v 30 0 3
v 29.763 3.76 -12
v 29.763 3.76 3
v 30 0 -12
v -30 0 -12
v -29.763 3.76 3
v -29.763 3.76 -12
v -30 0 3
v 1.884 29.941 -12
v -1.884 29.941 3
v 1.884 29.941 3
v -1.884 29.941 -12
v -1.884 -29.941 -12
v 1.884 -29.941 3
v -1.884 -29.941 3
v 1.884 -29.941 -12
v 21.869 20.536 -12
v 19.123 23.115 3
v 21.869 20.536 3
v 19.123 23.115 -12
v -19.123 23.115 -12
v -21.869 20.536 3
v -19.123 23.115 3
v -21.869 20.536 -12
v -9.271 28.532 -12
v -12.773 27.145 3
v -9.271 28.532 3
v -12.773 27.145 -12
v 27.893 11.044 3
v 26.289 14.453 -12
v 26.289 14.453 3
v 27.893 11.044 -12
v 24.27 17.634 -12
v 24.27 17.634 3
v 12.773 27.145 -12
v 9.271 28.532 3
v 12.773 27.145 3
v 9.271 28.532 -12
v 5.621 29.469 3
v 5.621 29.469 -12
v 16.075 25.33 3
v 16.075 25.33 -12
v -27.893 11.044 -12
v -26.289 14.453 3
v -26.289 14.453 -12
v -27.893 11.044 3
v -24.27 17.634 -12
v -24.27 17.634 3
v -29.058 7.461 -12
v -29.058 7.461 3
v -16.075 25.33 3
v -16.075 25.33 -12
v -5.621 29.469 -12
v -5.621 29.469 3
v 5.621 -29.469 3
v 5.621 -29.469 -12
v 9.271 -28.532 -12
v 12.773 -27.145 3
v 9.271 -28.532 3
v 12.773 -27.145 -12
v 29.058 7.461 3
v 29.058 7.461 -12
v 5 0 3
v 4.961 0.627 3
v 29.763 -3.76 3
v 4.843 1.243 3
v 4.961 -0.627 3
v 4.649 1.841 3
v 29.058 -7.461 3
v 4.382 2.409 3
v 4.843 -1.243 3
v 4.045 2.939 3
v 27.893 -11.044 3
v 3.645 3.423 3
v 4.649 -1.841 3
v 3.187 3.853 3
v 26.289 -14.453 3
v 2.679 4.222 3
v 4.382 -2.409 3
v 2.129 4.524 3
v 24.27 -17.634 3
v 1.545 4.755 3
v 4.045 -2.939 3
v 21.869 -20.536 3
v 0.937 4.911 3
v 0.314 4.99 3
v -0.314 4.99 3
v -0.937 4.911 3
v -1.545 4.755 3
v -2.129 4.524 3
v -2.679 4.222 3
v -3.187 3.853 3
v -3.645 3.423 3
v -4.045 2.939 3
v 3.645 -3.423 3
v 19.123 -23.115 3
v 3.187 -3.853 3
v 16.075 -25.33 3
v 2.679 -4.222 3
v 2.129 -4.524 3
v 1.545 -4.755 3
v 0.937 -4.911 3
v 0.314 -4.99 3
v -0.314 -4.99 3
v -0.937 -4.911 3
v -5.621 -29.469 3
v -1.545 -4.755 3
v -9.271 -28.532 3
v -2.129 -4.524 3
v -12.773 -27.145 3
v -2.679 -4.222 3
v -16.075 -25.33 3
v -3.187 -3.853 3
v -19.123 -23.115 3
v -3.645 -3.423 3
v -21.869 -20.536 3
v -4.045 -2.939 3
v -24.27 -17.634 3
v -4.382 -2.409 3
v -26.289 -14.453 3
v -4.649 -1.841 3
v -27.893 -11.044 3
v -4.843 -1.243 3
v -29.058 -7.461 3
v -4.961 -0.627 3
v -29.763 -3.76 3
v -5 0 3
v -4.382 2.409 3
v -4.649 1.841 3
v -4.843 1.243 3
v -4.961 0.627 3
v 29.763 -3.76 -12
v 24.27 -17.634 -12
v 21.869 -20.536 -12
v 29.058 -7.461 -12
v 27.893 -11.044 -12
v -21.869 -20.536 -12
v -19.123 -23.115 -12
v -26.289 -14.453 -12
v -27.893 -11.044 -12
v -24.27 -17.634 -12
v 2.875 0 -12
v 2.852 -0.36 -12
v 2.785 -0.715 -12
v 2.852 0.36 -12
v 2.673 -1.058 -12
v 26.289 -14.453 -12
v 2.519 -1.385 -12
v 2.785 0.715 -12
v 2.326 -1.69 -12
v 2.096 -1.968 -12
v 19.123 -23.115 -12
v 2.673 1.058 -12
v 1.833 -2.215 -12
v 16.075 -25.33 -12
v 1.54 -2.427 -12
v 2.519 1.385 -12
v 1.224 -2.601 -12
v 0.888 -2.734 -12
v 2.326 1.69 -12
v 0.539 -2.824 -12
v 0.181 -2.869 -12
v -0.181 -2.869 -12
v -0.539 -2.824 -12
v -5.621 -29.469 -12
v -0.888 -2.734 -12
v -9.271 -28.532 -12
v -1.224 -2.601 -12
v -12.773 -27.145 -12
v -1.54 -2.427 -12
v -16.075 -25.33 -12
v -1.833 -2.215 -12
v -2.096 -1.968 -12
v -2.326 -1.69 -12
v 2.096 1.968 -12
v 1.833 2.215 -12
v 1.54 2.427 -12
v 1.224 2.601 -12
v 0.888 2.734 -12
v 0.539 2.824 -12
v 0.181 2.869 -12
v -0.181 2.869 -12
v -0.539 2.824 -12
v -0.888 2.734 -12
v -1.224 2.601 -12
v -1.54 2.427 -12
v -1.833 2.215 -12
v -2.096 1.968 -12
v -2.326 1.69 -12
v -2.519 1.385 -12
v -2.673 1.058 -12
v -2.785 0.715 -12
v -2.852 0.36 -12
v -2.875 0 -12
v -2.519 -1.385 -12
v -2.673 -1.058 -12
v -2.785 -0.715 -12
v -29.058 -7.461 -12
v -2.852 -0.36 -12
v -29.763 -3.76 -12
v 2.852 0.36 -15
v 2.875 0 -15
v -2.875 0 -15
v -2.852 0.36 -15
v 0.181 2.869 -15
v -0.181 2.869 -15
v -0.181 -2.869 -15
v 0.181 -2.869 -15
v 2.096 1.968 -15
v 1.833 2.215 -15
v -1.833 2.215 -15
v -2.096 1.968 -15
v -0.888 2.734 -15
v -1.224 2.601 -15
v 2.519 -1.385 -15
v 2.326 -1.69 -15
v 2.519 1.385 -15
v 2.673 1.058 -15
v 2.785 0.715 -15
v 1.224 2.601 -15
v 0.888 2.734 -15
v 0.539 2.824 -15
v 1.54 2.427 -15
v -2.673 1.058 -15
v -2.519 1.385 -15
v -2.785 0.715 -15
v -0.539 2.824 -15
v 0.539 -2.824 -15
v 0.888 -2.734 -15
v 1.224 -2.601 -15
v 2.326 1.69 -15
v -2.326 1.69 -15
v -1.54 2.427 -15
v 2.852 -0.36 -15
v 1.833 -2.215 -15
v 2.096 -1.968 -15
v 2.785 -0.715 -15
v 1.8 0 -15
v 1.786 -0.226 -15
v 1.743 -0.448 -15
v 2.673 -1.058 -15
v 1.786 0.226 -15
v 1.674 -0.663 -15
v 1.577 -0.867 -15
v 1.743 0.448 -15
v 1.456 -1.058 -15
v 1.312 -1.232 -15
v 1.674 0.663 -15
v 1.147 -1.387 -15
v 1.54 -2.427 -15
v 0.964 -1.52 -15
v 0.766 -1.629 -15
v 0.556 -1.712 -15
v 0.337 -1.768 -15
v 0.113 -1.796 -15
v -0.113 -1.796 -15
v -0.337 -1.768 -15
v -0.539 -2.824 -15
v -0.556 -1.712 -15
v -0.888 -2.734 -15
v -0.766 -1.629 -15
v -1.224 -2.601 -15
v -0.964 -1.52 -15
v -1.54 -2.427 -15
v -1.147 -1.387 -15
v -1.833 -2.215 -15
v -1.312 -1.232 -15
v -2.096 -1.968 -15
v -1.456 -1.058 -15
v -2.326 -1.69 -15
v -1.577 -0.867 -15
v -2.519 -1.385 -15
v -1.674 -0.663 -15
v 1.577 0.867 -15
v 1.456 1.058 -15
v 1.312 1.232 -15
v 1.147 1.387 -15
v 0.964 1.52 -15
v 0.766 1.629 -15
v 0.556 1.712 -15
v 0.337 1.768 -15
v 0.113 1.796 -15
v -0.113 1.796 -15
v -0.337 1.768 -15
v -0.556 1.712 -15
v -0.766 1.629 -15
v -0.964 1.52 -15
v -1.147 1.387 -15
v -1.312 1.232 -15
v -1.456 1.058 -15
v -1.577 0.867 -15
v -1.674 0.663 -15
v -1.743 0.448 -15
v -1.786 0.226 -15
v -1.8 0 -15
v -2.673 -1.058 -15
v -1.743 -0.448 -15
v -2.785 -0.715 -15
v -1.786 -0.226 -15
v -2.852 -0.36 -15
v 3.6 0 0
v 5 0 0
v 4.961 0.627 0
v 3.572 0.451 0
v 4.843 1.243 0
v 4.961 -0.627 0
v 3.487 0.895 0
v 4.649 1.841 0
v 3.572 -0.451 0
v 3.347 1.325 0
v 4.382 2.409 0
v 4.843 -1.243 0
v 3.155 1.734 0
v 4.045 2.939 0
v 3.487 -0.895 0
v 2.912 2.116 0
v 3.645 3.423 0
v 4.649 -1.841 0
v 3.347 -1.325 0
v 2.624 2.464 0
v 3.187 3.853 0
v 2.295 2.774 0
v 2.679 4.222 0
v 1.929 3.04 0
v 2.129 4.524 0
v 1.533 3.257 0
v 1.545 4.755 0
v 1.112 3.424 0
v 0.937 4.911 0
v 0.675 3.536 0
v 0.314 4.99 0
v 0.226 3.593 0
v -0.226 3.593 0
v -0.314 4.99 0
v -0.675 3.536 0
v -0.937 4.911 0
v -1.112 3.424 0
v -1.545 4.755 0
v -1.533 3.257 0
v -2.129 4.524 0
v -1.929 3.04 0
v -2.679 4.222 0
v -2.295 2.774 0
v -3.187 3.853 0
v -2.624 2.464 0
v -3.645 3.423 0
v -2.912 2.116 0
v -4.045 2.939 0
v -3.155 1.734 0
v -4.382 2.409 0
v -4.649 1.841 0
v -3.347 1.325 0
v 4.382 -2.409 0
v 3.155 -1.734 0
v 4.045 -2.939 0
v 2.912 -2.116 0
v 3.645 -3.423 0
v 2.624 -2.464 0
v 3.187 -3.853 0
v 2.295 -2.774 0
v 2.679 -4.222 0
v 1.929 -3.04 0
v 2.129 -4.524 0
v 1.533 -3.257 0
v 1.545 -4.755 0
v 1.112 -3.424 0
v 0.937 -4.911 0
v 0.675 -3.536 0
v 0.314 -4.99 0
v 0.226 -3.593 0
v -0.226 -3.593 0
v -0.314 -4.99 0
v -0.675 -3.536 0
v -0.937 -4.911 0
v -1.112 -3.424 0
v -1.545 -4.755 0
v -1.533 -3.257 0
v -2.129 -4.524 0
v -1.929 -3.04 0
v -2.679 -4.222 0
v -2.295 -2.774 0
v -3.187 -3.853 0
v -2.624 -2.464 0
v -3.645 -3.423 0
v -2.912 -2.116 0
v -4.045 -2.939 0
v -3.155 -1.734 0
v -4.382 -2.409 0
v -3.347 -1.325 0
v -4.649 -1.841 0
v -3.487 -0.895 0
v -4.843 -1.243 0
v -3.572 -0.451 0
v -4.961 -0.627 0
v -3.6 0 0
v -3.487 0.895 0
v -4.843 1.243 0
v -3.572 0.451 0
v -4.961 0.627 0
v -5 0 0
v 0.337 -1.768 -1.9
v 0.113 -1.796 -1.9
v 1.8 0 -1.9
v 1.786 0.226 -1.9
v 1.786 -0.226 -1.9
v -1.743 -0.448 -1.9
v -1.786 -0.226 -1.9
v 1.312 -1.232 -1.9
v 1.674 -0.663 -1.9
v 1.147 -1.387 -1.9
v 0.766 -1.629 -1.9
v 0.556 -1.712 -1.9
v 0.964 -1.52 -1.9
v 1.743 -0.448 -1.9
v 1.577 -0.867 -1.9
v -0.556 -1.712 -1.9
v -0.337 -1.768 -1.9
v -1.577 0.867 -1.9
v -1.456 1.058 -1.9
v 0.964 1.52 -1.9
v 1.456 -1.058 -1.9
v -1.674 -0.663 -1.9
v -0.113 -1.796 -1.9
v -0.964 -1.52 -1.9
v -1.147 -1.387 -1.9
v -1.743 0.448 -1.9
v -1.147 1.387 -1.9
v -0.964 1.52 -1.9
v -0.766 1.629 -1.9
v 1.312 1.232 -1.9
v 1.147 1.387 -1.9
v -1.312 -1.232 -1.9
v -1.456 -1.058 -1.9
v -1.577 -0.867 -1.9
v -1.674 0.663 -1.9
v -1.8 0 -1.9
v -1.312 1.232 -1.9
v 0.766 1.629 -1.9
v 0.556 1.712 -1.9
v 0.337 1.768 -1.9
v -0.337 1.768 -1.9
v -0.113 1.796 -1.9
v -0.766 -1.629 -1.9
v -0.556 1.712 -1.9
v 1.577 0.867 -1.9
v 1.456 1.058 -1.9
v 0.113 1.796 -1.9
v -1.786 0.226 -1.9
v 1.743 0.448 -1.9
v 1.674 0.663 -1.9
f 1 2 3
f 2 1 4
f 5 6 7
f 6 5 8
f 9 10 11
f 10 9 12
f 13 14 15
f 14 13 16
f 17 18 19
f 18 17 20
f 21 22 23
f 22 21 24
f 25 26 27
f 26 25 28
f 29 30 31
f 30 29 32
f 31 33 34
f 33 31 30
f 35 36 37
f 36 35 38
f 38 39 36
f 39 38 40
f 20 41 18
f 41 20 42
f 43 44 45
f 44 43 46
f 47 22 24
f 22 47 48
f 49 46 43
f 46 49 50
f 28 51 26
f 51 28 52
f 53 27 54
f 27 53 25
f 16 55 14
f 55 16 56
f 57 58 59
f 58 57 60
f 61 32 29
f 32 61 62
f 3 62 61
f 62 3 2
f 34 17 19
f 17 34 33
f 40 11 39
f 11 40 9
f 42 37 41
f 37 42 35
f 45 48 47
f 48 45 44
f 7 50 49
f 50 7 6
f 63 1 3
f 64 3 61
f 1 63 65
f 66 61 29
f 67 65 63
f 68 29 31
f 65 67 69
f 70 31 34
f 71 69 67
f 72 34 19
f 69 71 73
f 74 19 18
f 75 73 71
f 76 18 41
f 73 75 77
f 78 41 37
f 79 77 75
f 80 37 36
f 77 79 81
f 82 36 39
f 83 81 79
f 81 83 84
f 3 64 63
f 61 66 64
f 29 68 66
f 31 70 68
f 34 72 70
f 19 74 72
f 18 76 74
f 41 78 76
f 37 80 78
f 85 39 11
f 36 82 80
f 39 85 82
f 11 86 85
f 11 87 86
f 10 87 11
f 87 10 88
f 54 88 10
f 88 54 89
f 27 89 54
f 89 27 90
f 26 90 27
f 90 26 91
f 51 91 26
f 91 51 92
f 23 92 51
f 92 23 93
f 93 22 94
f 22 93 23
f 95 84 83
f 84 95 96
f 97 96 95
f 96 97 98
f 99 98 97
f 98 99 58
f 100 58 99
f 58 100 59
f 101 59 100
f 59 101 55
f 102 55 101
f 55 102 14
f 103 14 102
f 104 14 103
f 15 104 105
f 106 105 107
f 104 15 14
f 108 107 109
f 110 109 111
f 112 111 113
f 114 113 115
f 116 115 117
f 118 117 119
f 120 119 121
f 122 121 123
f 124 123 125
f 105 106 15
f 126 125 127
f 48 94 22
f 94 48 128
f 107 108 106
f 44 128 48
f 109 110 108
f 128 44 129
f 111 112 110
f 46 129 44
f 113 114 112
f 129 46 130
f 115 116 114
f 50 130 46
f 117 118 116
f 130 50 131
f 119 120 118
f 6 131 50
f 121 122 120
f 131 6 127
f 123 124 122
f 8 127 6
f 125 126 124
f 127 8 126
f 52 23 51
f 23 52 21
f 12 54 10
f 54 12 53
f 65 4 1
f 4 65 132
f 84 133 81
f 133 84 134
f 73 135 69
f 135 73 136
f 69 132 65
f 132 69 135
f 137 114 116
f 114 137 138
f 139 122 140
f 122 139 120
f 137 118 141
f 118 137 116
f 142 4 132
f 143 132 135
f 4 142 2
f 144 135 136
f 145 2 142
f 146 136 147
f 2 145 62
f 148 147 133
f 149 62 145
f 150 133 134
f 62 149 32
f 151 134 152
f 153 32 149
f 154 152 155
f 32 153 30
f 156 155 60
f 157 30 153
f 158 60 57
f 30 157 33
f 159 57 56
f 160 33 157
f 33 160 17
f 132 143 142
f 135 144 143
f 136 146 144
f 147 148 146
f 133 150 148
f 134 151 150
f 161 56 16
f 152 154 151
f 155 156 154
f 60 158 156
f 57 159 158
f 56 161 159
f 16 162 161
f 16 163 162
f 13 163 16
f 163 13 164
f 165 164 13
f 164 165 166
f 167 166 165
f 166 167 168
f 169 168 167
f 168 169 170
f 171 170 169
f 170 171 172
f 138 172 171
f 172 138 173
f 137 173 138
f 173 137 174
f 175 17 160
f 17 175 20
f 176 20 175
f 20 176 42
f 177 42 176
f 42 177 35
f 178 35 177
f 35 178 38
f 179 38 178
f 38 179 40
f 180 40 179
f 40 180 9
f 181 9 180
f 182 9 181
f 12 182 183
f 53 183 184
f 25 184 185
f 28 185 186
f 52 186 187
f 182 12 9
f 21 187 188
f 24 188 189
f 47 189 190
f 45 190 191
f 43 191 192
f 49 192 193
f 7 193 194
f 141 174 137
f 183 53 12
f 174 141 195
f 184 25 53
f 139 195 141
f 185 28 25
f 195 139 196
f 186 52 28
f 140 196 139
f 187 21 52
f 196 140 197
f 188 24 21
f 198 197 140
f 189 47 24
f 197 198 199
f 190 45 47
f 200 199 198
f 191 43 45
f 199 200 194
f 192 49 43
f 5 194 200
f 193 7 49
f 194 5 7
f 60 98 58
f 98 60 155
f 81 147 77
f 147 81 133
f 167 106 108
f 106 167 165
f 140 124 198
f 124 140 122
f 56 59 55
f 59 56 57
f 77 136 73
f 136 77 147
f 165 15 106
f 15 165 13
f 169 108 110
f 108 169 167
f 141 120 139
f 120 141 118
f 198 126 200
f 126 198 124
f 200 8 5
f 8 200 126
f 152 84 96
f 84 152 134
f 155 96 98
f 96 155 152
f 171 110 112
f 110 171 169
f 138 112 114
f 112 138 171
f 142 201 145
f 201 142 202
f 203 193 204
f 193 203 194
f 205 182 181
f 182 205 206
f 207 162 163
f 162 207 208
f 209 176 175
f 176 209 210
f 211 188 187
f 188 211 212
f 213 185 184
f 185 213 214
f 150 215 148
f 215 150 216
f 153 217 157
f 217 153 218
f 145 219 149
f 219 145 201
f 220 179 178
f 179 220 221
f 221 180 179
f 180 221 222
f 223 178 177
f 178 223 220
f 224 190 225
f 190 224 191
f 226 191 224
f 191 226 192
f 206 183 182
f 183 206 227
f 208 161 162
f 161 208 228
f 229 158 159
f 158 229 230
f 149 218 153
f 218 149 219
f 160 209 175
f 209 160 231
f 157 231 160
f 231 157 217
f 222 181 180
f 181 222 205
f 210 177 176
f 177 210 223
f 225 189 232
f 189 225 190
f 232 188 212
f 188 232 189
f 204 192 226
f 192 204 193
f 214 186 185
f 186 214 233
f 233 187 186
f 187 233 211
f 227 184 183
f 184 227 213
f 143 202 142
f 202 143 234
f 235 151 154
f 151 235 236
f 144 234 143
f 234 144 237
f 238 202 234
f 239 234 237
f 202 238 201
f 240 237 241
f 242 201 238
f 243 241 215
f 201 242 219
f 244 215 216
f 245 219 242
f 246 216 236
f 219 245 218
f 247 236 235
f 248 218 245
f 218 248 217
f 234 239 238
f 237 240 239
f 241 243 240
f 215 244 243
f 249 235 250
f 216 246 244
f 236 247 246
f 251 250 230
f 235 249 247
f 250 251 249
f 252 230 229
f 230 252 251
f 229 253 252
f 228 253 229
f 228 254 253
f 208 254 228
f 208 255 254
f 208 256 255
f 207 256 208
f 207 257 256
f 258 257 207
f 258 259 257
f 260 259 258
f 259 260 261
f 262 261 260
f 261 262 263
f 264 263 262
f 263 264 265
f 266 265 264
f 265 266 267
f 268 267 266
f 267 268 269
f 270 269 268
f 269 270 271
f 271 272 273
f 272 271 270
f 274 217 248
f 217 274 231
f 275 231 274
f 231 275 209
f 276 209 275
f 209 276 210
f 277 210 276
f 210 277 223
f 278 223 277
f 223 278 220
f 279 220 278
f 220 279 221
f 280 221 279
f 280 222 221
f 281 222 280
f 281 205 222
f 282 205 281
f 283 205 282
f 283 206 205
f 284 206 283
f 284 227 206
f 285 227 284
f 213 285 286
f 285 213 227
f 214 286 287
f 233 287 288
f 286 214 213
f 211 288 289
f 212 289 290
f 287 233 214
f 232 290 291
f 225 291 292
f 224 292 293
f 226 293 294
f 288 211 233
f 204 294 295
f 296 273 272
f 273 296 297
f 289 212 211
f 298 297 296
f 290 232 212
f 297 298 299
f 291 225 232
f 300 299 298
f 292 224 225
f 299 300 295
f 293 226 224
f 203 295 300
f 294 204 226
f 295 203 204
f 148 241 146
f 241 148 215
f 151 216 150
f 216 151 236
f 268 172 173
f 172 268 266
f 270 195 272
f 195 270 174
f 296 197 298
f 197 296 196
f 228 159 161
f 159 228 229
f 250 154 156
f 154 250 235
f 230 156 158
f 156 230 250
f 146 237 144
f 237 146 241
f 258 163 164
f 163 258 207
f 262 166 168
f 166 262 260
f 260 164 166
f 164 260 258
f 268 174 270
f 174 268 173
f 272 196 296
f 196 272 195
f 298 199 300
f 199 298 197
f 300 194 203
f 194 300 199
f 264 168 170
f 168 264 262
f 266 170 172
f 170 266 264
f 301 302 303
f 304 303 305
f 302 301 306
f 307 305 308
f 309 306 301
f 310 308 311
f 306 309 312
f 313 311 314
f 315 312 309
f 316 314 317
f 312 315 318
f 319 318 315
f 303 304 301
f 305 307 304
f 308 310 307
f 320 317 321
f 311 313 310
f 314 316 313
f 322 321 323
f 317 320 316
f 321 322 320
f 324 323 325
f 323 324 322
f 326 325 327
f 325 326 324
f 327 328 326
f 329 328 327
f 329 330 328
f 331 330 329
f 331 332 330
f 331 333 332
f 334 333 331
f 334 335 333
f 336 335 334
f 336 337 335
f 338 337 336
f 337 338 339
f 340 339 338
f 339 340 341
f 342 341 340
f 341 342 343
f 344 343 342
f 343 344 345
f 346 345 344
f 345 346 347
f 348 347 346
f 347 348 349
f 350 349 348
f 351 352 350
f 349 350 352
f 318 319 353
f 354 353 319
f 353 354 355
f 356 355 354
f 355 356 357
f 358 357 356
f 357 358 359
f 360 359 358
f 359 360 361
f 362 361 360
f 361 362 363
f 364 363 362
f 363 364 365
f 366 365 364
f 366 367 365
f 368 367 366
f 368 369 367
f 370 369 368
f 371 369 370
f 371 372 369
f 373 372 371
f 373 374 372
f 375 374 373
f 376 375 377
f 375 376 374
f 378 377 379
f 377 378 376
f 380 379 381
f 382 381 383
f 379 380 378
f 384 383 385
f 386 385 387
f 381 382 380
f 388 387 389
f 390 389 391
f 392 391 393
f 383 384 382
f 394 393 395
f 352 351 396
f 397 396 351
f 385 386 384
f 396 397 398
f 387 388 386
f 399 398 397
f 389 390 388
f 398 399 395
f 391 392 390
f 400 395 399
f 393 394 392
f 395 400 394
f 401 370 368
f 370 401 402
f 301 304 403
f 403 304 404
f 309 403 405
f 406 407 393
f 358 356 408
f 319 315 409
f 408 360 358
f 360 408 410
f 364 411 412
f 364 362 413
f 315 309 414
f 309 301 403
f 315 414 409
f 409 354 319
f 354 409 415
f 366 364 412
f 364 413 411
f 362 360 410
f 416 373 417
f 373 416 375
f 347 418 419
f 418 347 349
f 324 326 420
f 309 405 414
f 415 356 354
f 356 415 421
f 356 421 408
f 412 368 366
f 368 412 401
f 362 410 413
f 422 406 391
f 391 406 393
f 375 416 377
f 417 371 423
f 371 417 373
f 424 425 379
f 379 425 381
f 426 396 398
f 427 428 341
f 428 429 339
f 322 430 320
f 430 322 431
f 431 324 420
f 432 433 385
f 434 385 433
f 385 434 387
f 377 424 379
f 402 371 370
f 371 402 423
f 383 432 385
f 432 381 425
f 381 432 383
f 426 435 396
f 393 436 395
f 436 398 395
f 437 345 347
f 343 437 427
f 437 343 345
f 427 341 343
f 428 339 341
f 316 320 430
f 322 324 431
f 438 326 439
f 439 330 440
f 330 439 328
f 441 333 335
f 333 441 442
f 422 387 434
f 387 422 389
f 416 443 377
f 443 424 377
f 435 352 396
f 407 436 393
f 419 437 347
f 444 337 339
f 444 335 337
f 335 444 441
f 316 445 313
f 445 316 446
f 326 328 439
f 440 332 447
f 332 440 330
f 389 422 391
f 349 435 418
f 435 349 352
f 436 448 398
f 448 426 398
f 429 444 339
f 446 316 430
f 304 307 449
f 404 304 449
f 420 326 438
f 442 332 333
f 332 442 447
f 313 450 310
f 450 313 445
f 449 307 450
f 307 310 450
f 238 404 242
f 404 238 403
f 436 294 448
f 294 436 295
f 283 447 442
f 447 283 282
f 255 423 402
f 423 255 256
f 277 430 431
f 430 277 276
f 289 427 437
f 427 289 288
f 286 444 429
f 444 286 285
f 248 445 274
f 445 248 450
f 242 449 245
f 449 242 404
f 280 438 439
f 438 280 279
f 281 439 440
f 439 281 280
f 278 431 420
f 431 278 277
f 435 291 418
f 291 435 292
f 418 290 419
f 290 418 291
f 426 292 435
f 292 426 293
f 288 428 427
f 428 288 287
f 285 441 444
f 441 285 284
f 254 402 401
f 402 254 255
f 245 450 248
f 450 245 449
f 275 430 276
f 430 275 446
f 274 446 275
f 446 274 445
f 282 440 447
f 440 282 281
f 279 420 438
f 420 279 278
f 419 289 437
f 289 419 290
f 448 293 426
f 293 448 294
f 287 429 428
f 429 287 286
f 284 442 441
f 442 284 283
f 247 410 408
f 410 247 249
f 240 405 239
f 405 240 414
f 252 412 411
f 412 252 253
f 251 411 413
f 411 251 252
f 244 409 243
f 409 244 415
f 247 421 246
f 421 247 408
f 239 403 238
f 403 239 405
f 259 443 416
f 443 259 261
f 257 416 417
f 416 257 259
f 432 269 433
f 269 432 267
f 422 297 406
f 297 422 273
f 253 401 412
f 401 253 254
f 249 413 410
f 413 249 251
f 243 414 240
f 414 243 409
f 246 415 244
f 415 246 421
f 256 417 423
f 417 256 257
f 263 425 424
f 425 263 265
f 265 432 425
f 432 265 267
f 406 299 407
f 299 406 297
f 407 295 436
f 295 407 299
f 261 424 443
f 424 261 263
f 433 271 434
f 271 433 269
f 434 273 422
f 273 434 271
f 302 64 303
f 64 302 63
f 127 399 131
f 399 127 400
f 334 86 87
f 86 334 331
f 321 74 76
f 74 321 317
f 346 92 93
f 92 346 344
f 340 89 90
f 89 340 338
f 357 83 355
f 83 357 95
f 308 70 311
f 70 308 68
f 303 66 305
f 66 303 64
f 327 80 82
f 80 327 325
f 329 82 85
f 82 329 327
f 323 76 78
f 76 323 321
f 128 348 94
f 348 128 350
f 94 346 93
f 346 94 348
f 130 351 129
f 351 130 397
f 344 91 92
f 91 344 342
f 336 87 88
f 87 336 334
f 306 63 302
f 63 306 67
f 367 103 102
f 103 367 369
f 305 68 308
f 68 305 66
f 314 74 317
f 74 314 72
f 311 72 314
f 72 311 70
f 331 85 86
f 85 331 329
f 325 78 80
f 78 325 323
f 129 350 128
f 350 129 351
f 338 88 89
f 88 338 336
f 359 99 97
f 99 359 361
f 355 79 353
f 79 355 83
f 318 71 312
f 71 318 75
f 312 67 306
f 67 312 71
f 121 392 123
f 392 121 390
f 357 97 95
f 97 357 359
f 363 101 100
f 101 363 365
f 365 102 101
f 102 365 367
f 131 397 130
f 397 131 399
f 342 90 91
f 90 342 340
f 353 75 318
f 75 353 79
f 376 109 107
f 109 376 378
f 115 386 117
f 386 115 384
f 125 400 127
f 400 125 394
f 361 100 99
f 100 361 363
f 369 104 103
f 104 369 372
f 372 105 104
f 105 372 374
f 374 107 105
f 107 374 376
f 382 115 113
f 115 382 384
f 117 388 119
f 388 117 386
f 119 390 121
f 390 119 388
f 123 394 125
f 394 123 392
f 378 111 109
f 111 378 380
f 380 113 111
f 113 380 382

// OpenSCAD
$fn = 50;


difference() {
	union() {
		translate(v = [0, 0, -12.0000000000]) {
			cylinder(h = 15, r = 30.0000000000);
		}
		#translate(v = [0, 0, -15.0000000000]) {
			cylinder(h = 15, r = 2.8750000000);
		}
	}
	union() {
		translate(v = [0, 0, 0]) {
			rotate(a = [0, 0, 0]) {
				difference() {
					union() {
						translate(v = [0, 0, -15.0000000000]) {
							cylinder(h = 15, r = 1.5000000000);
						}
						translate(v = [0, 0, -1.9000000000]) {
							cylinder(h = 1.9000000000, r1 = 1.8000000000, r2 = 3.6000000000);
						}
						translate(v = [0, 0, -15.0000000000]) {
							cylinder(h = 15, r = 1.8000000000);
						}
						translate(v = [0, 0, -15.0000000000]) {
							cylinder(h = 15, r = 1.5000000000);
						}
					}
					union();
				}
			}
		}
		#cylinder(h = 3, r = 5.0000000000);
	}
}
